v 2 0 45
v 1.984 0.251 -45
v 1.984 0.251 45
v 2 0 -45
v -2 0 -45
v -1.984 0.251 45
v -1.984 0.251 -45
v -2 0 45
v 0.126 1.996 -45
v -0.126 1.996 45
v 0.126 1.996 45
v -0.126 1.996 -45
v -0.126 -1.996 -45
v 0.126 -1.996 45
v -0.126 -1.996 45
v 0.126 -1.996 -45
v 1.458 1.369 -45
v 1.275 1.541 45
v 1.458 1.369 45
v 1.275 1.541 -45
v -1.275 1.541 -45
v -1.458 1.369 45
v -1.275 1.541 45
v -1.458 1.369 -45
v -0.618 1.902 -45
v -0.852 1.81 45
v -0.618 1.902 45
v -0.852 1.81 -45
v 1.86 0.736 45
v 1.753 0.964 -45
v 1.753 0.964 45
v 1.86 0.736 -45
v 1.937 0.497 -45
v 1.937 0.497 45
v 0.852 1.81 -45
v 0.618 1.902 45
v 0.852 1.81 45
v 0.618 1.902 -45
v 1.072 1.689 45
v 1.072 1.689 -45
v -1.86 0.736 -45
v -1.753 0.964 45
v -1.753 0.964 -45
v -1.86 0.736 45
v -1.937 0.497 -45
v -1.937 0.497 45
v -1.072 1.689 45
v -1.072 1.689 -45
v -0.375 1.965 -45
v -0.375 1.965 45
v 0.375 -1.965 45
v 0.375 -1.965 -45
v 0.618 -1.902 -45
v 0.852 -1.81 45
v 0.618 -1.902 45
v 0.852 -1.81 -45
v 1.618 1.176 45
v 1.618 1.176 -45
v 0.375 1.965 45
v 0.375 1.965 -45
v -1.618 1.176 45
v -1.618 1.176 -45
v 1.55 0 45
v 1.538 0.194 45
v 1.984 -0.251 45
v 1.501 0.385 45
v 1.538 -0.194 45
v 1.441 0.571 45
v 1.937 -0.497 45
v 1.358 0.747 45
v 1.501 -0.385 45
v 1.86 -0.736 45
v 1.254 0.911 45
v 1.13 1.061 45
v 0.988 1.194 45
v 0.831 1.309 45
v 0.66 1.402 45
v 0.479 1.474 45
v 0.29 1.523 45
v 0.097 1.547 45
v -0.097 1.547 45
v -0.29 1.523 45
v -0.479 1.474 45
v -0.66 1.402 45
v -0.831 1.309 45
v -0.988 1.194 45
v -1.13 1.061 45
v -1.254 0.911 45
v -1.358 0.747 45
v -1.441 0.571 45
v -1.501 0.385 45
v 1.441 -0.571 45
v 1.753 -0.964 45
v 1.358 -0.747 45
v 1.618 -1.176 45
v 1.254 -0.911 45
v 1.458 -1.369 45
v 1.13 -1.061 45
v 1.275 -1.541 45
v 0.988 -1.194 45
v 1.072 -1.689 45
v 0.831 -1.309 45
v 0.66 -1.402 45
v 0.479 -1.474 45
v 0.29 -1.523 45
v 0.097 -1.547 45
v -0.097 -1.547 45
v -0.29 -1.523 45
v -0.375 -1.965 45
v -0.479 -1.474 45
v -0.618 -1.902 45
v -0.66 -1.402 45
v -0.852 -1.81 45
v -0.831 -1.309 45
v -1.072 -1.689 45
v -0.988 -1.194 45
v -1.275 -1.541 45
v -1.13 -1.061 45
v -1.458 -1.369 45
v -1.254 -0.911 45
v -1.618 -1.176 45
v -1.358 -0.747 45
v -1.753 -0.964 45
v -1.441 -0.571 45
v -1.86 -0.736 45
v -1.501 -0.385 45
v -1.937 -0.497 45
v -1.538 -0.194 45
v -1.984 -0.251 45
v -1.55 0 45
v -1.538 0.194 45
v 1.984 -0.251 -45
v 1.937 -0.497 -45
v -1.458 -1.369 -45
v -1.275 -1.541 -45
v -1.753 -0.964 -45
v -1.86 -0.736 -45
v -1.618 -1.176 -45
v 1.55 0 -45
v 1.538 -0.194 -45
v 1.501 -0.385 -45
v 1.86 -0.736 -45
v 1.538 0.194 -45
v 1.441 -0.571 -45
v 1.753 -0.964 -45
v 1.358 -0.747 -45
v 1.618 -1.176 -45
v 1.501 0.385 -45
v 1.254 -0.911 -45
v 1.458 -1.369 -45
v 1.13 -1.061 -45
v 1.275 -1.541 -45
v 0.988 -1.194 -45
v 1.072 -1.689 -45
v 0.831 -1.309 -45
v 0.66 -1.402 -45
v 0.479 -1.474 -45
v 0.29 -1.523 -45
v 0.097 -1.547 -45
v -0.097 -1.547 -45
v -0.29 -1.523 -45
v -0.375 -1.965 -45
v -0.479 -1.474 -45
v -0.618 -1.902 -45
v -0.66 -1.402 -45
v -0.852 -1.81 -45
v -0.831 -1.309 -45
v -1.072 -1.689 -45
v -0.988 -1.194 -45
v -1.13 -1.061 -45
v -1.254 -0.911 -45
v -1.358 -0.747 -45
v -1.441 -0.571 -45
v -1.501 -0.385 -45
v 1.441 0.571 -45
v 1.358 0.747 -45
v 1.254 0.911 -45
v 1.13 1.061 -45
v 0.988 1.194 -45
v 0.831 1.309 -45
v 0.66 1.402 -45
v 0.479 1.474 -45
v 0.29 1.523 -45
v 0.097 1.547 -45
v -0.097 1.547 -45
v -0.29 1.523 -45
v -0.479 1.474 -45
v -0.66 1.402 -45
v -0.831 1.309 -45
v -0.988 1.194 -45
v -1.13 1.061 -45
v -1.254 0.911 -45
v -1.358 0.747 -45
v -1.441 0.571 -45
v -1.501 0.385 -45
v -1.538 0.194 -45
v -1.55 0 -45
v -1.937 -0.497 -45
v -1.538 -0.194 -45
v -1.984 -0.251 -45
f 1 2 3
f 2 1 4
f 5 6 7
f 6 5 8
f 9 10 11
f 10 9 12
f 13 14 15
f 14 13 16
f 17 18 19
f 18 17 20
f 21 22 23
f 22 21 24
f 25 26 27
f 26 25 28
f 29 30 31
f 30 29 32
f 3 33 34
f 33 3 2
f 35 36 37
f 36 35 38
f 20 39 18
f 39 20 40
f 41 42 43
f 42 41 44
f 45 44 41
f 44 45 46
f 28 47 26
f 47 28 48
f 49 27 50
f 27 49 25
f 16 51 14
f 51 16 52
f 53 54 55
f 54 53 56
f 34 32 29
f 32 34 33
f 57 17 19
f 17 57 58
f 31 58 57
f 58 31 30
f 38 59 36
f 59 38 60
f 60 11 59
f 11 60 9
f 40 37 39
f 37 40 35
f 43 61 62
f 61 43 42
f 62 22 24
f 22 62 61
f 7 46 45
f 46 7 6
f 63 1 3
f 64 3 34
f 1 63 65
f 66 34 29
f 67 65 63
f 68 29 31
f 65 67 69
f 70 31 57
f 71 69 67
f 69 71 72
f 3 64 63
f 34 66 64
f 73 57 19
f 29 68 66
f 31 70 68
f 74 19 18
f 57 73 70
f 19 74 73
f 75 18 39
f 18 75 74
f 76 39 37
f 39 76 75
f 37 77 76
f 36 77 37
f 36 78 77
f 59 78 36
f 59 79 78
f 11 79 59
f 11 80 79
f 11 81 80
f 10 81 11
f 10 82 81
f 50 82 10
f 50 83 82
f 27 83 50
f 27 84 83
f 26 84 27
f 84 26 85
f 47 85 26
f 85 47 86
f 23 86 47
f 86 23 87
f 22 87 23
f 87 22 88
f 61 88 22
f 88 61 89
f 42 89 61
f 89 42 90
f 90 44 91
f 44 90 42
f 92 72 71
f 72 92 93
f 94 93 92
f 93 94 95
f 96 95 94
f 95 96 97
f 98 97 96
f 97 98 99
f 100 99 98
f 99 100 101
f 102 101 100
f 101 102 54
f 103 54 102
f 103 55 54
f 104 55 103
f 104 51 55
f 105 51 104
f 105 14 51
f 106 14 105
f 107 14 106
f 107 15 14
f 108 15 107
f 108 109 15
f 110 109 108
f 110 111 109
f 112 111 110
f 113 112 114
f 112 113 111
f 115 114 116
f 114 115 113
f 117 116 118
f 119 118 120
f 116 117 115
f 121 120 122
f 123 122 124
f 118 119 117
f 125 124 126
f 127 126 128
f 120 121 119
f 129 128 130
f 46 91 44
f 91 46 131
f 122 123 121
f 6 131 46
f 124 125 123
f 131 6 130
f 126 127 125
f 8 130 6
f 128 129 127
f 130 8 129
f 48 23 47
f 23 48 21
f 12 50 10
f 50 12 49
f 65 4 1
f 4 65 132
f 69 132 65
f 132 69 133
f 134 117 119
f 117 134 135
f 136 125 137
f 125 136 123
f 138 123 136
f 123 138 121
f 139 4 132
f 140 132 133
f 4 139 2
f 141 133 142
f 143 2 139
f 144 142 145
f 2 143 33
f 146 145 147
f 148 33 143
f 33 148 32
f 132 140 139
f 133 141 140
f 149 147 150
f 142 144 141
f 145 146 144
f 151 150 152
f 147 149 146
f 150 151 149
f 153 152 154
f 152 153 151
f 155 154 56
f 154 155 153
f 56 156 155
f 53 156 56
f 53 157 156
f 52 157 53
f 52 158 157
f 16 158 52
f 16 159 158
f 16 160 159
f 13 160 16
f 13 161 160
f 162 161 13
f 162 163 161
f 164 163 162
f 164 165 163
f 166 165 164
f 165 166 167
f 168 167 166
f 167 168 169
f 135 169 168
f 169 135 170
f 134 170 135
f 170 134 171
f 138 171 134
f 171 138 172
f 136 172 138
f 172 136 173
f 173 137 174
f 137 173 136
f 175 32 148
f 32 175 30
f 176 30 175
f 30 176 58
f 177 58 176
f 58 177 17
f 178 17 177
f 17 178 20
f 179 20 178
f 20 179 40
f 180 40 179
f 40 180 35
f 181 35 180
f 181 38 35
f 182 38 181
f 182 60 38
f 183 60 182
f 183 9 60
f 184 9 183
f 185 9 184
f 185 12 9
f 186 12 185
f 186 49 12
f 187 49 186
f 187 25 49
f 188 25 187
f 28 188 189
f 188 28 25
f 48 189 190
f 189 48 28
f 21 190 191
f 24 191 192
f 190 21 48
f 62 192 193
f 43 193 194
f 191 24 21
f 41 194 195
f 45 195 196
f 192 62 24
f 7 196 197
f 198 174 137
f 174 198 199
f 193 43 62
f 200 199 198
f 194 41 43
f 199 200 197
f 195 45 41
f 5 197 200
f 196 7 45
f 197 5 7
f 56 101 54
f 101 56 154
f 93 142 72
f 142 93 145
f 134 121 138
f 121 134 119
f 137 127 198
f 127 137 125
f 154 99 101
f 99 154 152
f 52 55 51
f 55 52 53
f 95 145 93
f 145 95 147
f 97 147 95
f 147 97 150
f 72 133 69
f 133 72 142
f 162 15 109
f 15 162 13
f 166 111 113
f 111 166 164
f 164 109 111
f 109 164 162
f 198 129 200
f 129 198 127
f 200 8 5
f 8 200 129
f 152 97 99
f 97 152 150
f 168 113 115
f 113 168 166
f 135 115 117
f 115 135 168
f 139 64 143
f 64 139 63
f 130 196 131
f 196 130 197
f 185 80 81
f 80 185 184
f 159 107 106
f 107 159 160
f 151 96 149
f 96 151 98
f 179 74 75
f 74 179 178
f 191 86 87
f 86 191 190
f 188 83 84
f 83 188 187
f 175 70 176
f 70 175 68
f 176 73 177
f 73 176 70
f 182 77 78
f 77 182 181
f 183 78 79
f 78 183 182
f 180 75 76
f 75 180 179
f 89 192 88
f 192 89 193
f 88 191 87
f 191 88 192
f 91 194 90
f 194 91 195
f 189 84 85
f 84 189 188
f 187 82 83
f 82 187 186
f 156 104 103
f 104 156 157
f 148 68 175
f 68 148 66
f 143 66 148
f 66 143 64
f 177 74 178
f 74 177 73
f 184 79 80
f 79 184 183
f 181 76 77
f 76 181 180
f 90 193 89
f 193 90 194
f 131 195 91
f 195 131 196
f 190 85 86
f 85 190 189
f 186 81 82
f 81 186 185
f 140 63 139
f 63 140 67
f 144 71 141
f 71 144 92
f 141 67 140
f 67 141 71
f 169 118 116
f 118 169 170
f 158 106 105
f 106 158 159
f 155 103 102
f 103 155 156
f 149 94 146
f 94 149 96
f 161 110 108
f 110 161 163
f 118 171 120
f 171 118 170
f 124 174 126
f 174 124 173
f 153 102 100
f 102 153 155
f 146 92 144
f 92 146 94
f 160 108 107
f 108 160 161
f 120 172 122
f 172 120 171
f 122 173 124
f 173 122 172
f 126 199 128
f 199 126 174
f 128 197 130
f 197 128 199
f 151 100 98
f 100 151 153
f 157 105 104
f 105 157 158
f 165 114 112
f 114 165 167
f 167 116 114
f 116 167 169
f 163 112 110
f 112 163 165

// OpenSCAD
$fn = 50;


difference() {
	union() {
		translate(v = [0, 0, -45.0000000000]) {
			cylinder(h = 90, r = 2.0000000000);
		}
	}
	union() {
		translate(v = [0, 0, -100.0000000000]) {
			cylinder(h = 200, r = 1.5500000000);
		}
	}
}
